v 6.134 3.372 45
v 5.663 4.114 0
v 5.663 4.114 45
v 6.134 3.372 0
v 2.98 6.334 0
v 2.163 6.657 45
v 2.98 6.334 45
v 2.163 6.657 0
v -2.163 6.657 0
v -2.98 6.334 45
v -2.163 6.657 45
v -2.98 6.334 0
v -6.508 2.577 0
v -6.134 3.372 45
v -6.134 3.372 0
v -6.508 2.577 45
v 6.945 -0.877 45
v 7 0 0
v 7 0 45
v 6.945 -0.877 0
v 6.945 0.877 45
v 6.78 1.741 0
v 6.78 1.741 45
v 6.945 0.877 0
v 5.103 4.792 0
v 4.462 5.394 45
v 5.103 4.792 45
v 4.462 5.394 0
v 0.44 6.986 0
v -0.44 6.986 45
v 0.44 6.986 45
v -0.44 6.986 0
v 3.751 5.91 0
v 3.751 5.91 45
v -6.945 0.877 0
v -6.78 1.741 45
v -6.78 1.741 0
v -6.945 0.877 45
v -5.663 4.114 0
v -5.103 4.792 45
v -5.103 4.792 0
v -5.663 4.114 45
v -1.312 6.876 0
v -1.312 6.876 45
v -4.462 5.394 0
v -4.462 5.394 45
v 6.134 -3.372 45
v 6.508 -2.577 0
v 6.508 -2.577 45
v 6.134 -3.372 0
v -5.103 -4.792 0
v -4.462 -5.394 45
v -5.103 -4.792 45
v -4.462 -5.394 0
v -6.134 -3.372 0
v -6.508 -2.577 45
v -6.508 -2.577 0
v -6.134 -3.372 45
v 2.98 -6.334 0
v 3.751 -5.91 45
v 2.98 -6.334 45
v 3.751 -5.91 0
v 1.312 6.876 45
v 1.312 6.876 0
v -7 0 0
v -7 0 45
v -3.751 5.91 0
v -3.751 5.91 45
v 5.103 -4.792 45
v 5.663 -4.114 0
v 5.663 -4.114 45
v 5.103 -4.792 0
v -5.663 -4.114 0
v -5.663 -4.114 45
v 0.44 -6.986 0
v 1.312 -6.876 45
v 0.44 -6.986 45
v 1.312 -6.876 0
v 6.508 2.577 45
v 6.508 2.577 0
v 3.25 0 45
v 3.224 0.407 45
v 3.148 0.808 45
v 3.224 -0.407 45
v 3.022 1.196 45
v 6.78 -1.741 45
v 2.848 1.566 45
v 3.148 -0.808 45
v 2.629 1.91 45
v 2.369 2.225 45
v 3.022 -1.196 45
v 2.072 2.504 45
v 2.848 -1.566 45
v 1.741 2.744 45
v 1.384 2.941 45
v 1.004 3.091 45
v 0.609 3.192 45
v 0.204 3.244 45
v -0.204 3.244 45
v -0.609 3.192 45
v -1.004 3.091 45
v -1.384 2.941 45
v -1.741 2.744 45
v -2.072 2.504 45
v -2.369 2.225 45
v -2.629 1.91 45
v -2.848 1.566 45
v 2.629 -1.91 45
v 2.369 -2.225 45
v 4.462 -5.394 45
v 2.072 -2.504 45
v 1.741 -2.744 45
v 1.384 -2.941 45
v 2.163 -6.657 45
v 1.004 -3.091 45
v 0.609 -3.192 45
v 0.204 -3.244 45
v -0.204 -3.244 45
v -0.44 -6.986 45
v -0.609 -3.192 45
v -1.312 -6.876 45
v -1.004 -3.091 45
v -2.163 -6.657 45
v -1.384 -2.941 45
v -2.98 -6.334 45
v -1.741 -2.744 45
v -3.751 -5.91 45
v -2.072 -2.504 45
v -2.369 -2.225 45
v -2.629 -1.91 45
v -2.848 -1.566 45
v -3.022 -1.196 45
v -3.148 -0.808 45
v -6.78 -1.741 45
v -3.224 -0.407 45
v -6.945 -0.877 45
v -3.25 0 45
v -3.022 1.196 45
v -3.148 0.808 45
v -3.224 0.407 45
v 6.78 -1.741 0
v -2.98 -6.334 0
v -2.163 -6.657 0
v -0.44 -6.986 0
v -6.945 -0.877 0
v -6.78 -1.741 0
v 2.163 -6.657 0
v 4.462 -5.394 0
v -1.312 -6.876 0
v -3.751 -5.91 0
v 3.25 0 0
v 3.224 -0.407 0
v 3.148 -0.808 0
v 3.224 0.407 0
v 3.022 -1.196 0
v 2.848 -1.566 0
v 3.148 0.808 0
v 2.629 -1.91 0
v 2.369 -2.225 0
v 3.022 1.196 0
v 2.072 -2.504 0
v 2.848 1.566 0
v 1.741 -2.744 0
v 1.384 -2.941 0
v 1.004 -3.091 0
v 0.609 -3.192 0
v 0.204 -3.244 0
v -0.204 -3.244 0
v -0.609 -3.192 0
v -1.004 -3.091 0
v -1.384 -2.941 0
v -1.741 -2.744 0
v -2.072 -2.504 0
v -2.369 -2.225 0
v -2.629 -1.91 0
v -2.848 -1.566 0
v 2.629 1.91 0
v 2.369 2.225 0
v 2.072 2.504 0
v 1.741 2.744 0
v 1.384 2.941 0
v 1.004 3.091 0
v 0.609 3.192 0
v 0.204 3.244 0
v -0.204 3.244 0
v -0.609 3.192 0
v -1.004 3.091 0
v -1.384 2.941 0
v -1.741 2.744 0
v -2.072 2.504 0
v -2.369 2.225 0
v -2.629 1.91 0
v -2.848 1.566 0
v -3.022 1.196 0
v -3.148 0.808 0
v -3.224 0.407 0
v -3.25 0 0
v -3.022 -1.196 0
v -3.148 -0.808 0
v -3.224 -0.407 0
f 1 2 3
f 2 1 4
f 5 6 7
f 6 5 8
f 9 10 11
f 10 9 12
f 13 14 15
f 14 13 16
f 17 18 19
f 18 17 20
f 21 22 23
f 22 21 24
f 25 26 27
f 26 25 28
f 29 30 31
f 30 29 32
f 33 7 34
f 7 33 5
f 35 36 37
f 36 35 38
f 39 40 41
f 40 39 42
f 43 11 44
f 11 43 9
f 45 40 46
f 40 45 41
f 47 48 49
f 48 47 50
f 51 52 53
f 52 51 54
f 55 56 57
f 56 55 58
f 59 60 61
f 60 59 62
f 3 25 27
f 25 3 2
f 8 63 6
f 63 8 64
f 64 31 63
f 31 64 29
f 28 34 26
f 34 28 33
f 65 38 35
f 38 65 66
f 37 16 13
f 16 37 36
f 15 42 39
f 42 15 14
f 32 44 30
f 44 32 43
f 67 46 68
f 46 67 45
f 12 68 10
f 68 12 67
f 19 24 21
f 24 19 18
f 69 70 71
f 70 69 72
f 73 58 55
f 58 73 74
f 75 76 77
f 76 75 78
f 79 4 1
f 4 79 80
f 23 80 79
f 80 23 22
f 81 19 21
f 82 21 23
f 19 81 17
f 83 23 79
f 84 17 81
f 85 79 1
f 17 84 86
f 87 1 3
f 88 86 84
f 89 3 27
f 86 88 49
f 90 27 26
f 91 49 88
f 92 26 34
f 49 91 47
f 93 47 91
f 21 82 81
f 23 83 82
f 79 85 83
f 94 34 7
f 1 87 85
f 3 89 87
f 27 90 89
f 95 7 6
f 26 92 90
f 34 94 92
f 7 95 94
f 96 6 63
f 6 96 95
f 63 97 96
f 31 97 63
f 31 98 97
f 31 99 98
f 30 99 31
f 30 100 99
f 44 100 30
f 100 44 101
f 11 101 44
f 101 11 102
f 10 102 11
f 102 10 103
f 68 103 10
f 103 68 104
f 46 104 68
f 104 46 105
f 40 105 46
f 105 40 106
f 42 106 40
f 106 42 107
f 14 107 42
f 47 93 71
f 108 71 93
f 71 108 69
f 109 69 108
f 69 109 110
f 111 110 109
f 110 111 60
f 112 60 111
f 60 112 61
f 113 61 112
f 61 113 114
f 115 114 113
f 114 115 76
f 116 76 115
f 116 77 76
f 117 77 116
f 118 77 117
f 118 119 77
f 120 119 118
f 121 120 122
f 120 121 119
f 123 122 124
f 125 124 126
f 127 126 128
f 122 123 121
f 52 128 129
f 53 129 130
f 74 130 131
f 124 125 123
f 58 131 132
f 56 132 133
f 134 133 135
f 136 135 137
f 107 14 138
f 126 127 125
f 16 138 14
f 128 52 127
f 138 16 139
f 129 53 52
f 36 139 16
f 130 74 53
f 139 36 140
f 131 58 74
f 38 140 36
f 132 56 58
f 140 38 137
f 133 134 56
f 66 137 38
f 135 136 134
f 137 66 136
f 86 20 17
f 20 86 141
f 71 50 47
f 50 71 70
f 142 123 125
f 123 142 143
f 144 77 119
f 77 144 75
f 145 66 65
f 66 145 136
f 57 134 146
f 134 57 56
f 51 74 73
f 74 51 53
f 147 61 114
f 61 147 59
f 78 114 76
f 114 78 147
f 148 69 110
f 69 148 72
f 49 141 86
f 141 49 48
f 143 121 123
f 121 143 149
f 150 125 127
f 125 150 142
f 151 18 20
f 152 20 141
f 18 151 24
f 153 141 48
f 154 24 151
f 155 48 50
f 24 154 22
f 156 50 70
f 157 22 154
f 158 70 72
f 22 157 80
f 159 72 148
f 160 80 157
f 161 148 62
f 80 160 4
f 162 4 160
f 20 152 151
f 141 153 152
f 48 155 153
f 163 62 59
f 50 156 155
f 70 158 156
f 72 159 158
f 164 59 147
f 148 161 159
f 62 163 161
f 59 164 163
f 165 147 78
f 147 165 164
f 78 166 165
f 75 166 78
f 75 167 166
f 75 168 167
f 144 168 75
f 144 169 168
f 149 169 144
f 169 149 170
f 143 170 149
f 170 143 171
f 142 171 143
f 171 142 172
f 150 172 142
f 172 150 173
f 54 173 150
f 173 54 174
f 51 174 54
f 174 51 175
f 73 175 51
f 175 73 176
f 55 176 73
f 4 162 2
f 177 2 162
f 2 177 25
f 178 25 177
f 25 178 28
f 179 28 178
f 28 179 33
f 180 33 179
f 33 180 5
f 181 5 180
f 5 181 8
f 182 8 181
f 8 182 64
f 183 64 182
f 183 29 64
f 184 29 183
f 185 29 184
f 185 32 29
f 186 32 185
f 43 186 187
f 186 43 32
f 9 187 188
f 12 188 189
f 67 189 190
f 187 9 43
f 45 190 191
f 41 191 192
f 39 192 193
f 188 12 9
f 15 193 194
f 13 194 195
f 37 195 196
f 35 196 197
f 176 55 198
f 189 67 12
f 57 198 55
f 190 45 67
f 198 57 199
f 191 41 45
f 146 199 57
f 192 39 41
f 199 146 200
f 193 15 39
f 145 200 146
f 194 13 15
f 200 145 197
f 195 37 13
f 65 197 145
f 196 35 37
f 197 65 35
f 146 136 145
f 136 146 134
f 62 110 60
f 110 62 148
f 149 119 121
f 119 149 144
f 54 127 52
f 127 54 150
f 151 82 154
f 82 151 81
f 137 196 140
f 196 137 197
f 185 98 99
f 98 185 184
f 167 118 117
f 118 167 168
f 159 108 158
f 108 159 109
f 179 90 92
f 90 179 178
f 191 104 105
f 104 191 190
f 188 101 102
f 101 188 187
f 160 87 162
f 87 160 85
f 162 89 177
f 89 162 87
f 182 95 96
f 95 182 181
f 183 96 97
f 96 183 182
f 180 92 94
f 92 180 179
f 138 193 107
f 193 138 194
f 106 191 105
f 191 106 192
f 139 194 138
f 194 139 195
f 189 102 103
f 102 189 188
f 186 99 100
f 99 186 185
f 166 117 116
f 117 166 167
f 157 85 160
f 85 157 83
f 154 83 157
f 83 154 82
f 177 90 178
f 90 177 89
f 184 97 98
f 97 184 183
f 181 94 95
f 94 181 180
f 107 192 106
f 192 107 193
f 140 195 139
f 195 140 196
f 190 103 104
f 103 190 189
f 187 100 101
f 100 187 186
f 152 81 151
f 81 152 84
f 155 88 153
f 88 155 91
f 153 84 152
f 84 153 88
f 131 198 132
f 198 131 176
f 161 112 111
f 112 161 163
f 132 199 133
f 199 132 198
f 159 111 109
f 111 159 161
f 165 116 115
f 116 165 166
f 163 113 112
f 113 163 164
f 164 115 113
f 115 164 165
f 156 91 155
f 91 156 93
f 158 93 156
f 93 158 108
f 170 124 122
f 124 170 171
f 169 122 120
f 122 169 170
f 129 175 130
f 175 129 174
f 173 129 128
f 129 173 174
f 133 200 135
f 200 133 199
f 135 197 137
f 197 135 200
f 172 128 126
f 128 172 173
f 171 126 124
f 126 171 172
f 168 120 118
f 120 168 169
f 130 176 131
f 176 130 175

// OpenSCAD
$fn = 50;


difference() {
	union() {
		cylinder(h = 45, r = 7.0000000000);
	}
	union() {
		translate(v = [0.0000000000, 0.0000000000, -100.0000000000]) {
			cylinder(h = 200, r = 3.2500000000);
		}
	}
}
